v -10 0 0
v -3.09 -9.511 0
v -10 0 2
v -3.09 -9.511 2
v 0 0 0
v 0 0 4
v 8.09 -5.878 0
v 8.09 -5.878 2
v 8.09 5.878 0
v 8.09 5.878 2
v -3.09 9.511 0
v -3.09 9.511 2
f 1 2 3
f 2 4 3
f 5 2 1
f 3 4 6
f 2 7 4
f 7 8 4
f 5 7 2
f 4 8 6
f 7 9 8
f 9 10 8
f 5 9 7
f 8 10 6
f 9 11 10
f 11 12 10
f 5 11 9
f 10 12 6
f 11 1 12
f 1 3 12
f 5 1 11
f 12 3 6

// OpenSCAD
translate([0,0,4]) rotate([180,0,0]) rotate_extrude($fn=5) polygon( points=[[0,0],[10,2],[10,4],[0,4]] );
